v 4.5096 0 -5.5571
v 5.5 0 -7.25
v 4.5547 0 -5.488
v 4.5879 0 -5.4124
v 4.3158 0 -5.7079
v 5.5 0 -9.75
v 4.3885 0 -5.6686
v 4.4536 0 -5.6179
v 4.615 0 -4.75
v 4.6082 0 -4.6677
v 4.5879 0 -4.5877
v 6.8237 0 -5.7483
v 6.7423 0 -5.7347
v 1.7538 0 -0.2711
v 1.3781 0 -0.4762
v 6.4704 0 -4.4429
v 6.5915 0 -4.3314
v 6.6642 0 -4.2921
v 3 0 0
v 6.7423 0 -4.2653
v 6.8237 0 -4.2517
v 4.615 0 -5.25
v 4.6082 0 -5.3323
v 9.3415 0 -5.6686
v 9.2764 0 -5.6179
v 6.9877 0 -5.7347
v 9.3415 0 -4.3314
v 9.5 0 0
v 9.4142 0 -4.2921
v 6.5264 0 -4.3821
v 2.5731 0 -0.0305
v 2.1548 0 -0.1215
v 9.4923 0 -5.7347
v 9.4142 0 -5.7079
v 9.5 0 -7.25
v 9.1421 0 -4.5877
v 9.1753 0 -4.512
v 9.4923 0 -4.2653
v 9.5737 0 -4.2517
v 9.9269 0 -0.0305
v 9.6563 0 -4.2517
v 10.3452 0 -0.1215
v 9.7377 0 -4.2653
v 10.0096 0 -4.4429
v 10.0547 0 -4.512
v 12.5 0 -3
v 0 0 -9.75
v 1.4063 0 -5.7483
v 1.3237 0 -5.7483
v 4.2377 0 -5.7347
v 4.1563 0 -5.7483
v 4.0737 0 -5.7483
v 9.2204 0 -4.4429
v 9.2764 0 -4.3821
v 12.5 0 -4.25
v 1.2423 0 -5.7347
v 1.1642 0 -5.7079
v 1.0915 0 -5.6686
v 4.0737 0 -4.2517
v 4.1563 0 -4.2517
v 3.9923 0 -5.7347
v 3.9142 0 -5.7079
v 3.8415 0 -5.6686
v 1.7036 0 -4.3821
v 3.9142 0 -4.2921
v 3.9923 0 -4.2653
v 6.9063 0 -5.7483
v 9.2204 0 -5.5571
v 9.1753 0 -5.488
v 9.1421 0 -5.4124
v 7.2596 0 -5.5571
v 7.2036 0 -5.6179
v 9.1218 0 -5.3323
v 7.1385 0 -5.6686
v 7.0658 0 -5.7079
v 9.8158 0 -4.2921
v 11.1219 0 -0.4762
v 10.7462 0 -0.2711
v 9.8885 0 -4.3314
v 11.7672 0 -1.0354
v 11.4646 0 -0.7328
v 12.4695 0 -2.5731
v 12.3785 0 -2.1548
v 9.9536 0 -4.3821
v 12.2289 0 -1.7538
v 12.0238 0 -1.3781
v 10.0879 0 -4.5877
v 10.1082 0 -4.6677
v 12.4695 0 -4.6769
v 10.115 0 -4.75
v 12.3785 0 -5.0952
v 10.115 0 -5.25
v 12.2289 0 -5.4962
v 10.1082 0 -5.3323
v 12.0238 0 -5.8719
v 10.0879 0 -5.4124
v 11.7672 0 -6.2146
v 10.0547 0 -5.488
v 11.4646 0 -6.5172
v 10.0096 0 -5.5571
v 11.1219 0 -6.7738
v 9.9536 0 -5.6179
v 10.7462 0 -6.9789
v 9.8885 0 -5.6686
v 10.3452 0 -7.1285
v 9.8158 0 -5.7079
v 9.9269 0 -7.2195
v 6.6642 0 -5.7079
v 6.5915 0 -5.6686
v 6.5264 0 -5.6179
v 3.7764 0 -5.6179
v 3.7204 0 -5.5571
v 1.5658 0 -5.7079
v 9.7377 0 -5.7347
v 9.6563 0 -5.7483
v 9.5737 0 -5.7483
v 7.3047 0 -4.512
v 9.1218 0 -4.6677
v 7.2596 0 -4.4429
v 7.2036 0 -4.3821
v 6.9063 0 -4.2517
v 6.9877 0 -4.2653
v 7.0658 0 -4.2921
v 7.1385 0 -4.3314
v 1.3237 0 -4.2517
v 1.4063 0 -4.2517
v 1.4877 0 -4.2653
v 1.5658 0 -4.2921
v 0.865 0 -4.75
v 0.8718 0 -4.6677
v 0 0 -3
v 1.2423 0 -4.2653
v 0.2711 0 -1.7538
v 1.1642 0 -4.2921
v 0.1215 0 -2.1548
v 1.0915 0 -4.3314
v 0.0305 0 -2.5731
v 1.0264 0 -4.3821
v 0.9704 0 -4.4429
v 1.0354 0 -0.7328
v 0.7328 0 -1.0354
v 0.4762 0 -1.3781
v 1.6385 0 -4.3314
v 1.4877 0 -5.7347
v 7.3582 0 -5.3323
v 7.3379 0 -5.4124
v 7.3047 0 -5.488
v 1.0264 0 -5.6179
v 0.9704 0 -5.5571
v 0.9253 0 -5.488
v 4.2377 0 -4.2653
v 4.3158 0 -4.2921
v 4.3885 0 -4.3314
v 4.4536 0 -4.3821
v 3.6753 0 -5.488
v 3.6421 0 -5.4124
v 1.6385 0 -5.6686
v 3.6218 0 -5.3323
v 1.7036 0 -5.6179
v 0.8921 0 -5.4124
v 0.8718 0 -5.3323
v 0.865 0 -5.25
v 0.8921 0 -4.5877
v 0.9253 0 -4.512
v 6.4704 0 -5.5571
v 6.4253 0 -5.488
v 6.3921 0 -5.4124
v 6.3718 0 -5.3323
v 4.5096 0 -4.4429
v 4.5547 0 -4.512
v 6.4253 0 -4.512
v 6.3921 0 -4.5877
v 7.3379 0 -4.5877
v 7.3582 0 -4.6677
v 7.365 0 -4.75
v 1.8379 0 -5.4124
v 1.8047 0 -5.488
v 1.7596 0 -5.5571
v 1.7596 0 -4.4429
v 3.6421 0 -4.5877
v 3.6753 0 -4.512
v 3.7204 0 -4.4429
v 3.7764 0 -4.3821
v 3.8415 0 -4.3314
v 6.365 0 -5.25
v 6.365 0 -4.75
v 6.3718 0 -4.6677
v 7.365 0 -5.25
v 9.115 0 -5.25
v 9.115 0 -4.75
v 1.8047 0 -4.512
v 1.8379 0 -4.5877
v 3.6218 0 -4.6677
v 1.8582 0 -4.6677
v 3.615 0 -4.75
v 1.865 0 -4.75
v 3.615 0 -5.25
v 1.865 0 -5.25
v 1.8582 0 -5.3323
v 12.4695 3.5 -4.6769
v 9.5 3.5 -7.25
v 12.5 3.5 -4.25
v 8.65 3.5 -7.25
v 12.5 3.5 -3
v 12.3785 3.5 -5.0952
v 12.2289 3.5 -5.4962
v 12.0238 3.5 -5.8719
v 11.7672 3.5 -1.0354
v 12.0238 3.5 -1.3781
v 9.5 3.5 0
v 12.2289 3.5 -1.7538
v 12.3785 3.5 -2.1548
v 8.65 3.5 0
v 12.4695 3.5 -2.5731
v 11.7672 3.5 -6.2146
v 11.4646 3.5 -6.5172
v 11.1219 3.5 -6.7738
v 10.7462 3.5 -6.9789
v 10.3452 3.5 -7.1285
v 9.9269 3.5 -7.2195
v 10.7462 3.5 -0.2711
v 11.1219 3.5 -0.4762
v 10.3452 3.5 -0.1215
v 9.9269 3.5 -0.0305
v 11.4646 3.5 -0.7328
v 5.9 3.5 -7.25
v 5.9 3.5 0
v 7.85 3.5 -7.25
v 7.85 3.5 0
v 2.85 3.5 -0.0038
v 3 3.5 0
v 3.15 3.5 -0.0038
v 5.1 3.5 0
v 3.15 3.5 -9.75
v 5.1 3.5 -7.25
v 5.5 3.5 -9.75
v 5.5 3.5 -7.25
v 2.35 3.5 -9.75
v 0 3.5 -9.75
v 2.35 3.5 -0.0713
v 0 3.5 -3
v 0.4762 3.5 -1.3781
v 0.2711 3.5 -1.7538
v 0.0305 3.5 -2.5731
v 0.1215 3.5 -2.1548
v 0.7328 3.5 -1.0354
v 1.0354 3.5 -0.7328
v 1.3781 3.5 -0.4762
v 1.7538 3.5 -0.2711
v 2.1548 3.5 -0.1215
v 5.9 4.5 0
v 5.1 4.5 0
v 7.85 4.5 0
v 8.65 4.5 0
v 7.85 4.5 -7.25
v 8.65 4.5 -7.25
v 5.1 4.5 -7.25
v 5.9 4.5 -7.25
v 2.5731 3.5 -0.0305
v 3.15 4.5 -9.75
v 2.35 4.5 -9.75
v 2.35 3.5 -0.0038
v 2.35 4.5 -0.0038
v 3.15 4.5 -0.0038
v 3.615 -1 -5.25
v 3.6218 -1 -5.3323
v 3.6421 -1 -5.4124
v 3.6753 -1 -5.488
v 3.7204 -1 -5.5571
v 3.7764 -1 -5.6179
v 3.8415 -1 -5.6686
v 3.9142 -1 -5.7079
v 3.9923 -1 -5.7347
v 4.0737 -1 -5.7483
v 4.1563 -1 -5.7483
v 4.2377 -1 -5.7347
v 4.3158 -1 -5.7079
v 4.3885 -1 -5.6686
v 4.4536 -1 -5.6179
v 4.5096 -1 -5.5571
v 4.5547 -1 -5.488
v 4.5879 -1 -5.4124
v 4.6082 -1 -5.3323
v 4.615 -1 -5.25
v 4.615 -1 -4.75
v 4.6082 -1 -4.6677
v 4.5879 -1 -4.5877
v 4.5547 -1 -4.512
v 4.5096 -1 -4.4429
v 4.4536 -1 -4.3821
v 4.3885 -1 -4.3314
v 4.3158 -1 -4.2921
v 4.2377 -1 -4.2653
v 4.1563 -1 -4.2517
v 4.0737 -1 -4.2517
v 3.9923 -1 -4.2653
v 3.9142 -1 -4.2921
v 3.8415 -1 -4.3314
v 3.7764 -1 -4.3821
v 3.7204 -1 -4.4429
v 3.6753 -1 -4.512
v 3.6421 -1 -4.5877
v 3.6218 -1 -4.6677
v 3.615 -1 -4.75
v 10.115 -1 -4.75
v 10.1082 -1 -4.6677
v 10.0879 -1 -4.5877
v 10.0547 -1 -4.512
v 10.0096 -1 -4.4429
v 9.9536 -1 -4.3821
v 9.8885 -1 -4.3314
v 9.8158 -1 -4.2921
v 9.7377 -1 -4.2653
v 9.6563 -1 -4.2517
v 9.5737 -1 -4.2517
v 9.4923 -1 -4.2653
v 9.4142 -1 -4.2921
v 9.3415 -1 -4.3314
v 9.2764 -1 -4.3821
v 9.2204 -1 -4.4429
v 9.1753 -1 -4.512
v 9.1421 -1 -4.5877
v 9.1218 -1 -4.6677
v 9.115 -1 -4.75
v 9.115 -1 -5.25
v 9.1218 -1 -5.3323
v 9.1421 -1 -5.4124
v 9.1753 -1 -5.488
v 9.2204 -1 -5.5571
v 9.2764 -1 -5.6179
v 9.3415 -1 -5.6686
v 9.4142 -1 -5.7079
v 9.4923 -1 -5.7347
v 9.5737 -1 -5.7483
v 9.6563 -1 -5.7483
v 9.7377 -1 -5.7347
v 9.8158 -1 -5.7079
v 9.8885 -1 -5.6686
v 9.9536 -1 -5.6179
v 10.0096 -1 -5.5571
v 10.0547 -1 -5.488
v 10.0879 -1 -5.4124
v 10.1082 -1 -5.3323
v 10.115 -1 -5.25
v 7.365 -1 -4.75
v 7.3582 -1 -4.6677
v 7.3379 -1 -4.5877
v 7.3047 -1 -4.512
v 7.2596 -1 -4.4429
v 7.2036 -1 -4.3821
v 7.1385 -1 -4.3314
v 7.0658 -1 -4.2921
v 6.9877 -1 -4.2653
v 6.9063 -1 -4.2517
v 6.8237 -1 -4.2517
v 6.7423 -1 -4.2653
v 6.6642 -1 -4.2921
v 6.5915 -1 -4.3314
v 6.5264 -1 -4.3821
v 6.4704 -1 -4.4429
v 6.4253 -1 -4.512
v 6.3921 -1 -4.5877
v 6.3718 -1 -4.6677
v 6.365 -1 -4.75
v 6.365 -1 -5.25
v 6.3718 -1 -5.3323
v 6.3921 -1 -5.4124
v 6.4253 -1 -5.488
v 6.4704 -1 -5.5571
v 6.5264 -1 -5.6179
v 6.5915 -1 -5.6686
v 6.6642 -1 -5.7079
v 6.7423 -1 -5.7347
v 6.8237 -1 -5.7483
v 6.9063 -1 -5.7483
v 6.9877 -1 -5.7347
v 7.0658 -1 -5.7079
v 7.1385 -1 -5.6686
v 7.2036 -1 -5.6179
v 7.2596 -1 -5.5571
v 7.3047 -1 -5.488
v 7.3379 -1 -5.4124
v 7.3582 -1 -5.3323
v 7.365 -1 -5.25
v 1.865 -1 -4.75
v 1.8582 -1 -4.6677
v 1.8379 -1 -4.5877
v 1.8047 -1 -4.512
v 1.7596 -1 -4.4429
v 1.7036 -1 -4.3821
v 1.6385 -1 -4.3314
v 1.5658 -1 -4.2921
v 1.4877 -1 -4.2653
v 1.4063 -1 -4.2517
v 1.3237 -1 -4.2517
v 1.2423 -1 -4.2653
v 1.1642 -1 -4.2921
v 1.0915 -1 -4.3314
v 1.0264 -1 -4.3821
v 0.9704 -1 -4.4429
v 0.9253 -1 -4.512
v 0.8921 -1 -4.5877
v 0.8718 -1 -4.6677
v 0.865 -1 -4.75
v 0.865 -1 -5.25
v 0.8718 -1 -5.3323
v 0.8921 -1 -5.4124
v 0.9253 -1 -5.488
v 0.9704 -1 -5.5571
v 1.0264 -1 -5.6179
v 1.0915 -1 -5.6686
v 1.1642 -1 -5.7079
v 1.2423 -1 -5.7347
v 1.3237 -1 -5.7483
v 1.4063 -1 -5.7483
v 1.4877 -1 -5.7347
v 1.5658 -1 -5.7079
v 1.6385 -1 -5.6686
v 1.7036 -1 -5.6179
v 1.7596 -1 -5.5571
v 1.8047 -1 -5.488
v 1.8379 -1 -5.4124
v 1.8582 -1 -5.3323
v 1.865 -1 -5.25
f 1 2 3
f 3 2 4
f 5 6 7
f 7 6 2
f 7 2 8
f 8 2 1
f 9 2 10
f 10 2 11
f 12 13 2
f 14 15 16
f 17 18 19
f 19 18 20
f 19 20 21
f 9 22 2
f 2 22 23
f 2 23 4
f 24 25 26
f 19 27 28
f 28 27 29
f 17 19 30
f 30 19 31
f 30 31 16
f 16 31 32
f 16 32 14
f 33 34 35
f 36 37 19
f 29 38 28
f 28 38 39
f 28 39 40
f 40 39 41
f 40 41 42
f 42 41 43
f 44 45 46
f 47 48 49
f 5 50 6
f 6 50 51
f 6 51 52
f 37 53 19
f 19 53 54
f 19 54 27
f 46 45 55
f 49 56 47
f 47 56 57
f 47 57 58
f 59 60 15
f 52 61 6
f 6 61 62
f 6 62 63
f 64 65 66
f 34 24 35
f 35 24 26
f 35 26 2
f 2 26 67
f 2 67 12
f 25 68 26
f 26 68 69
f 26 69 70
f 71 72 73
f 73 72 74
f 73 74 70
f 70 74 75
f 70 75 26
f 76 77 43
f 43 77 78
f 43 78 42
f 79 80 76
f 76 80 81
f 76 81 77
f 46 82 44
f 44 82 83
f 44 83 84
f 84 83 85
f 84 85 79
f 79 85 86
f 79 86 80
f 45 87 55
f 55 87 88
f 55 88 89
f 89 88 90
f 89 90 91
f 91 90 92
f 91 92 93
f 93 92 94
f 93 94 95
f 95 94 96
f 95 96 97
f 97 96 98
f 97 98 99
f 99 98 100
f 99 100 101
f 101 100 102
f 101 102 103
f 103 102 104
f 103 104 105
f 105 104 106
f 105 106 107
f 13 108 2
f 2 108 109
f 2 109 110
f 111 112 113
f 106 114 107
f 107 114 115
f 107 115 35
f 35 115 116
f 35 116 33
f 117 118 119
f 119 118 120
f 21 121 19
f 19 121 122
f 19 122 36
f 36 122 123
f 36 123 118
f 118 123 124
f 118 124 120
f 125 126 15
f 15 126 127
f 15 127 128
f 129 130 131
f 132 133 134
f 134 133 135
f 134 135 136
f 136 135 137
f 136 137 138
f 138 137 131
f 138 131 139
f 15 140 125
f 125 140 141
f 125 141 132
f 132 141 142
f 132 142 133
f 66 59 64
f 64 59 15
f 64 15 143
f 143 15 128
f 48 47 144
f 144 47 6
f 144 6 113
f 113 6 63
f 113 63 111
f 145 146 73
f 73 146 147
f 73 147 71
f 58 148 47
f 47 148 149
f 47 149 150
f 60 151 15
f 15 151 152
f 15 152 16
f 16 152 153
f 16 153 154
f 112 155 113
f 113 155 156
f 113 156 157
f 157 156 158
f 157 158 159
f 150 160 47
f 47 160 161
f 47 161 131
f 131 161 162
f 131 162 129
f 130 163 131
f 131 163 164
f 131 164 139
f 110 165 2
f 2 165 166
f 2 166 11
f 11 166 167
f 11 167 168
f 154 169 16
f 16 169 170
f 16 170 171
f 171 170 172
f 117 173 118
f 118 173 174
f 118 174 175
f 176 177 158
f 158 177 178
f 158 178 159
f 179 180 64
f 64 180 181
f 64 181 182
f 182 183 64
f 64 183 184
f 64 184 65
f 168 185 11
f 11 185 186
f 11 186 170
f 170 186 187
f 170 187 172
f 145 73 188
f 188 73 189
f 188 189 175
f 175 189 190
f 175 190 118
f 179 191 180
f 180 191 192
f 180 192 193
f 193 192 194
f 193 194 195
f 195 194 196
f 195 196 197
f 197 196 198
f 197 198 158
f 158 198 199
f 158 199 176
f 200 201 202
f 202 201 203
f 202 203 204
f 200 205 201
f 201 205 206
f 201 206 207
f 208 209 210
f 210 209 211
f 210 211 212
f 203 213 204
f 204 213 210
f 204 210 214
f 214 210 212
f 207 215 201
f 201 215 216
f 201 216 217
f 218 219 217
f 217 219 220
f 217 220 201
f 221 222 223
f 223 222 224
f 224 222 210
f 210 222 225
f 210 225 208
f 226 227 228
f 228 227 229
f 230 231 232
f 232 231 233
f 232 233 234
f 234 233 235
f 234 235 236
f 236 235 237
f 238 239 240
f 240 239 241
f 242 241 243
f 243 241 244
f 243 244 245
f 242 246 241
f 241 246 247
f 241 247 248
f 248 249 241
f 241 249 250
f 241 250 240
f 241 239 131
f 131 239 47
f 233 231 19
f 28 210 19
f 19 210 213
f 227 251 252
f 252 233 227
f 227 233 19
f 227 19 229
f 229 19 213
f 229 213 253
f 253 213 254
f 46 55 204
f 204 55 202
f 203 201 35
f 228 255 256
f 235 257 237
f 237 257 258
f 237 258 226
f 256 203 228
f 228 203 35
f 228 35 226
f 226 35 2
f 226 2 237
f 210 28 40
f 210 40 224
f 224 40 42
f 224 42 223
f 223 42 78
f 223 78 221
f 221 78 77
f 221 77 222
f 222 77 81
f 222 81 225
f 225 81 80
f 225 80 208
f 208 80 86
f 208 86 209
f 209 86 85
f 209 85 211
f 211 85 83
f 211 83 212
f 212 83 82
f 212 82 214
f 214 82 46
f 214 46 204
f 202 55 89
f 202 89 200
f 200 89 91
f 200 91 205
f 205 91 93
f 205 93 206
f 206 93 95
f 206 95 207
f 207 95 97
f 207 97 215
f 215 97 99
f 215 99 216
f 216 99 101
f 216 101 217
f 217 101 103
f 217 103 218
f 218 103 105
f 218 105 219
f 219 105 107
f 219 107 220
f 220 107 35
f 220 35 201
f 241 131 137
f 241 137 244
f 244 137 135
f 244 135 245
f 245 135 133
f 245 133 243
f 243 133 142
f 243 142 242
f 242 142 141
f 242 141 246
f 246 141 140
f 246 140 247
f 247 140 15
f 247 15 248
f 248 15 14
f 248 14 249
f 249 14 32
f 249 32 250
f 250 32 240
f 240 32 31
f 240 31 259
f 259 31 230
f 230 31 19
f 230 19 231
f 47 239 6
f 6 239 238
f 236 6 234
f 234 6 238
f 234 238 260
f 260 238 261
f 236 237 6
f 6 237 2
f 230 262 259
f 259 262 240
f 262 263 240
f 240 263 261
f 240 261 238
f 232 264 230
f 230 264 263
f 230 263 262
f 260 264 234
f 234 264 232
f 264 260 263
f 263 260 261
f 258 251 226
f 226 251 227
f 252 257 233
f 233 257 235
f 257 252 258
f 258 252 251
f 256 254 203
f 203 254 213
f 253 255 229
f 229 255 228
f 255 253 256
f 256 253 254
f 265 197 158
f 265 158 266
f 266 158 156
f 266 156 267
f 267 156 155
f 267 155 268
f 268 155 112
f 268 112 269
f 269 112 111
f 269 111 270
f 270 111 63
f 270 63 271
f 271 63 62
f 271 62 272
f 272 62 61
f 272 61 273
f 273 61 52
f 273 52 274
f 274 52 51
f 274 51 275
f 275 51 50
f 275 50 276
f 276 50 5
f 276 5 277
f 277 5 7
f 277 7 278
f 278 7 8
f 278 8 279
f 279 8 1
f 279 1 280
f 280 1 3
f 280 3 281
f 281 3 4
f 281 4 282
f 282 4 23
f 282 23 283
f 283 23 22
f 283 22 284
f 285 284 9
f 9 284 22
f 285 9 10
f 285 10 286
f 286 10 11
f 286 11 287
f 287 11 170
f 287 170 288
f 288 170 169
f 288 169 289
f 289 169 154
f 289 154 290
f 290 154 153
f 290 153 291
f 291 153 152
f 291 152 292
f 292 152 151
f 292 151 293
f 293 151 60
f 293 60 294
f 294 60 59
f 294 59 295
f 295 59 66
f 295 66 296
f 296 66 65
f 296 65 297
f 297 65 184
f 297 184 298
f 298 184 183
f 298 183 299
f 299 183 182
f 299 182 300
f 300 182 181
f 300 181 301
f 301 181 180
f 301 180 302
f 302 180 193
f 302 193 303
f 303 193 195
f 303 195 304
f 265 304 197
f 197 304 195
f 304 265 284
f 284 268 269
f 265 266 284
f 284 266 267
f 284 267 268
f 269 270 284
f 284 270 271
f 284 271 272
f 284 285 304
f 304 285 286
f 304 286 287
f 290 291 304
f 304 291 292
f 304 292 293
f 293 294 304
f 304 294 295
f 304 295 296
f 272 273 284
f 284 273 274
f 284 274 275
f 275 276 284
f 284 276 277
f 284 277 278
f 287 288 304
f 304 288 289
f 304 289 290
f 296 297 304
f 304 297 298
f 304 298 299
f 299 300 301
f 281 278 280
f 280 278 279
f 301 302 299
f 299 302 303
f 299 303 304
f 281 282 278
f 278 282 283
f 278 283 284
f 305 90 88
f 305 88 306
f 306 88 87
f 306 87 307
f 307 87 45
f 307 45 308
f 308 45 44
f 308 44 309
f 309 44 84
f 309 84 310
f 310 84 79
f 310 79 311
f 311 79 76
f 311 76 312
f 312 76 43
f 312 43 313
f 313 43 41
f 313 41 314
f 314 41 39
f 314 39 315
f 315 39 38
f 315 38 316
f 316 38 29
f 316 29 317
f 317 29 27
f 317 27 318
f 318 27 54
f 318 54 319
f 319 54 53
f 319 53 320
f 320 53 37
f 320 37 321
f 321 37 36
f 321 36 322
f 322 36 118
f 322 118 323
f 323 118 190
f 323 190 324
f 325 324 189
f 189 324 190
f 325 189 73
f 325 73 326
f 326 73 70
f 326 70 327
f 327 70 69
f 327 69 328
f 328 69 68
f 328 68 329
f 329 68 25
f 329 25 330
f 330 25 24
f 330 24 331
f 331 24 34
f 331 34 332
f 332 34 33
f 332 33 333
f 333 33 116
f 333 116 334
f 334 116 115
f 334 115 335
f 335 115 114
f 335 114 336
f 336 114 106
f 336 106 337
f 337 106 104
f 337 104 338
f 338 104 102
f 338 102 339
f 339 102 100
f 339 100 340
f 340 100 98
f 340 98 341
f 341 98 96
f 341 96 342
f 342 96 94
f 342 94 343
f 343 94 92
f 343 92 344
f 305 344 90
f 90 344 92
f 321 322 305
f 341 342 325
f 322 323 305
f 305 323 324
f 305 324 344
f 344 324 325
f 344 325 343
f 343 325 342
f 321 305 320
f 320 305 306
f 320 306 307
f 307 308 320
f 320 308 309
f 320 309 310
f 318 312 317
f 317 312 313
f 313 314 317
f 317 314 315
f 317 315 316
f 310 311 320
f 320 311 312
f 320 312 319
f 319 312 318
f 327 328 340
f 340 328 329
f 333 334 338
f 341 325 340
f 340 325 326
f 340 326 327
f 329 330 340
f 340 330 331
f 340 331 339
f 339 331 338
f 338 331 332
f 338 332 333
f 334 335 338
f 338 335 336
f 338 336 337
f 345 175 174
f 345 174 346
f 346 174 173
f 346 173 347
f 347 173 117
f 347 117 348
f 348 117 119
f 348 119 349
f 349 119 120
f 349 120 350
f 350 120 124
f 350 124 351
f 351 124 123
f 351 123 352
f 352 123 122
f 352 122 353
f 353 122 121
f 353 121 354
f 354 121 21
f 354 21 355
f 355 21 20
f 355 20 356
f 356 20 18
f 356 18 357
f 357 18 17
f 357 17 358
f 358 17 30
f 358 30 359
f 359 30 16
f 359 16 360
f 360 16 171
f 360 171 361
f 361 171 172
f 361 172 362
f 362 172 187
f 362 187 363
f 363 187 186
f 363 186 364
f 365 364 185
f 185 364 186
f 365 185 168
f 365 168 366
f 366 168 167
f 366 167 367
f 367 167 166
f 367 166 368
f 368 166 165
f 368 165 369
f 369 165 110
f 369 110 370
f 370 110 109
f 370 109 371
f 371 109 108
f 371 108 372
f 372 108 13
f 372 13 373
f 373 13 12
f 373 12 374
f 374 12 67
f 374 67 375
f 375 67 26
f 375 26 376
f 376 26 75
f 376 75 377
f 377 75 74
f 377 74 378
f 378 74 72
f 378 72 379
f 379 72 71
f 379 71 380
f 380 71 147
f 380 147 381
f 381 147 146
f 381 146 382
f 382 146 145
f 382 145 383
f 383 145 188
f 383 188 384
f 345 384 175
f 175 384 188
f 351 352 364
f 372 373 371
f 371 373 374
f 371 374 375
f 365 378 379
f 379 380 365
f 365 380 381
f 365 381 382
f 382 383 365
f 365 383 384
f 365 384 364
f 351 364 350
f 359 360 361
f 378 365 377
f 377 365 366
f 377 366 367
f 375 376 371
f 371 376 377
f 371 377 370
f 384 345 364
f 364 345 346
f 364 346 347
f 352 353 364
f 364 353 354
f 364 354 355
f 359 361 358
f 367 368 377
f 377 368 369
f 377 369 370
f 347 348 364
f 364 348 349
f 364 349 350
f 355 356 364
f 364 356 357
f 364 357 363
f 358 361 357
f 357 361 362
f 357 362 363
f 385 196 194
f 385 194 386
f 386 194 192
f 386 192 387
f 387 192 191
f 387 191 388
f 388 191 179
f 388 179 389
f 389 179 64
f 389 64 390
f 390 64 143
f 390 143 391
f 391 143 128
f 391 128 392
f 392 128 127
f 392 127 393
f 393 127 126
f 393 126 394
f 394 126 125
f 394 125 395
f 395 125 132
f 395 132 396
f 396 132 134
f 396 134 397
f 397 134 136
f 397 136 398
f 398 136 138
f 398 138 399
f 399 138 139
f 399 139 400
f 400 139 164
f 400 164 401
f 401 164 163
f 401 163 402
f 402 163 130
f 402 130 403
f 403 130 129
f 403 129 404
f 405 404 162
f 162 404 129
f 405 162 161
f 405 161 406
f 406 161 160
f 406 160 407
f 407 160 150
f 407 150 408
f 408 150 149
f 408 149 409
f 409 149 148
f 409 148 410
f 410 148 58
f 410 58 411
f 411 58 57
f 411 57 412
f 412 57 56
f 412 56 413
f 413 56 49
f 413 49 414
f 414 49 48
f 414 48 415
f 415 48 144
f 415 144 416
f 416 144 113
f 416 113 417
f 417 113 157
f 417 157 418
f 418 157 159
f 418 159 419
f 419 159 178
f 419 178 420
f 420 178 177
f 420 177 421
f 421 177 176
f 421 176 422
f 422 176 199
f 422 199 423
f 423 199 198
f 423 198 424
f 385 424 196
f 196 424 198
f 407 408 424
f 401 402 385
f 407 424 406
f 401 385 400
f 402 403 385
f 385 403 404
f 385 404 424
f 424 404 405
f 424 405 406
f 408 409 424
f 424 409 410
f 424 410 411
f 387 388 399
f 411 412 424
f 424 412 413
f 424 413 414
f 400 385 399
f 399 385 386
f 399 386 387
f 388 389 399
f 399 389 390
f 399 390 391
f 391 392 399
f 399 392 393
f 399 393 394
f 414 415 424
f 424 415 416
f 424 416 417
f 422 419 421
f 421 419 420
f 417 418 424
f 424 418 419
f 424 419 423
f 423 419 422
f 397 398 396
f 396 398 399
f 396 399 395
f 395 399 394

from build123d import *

# Parameters (mm, degrees)
SKETCH_1_W      = 12.5
SKETCH_1_H      = 7.25
EXTRUDE_1_DEPTH = 3.5
FILLET_1_R      = 3
SKETCH_2_W      = 5.5
SKETCH_2_H      = 2.5
EXTRUDE_2_DEPTH = 3.5
SKETCH_3_W      = 0.8
SKETCH_3_H      = 9.746247653
SKETCH_3_H_2    = 7.25
EXTRUDE_3_DEPTH = 1
EXTRUDE_4_DEPTH = 1


with BuildPart() as part:
    # 草图1 → 凸台-拉伸1 (new body)
    with BuildSketch(Plane(origin=(0, 0, 0), x_dir=(1, 0, 0), z_dir=(0, 1, 0))):
        with Locations((6.25, 3.625)):
            Rectangle(SKETCH_1_W, SKETCH_1_H)
    extrude(amount=EXTRUDE_1_DEPTH)

    # 圆角1
    fillet_1_edges = [part.edges().sort_by_distance(p)[0] for p in [
        (12.5, 1.75, -7.25),
        (12.5, 1.75, 0),
        (0, 1.75, 0),
    ]]
    fillet(fillet_1_edges, radius=FILLET_1_R)

    # 草图2 → 凸台-拉伸2 (add)
    with BuildSketch(Plane(origin=(0, 3.5, 0), x_dir=(1, 0, 0), z_dir=(0, 1, 0))):
        with Locations((2.75, 8.5)):
            Rectangle(SKETCH_2_W, SKETCH_2_H)
    extrude(amount=-EXTRUDE_2_DEPTH)

    # 草图3 → 凸台-拉伸3 (add)
    with BuildSketch(Plane(origin=(0, 3.5, 0), x_dir=(1, 0, 0), z_dir=(0, 1, 0))):
        with Locations((2.75, 4.876876174)):
            Rectangle(SKETCH_3_W, SKETCH_3_H)
        with Locations((5.5, 3.625)):
            Rectangle(SKETCH_3_W, SKETCH_3_H_2)
        with Locations((8.25, 3.625)):
            Rectangle(SKETCH_3_W, SKETCH_3_H_2)
    extrude(amount=EXTRUDE_3_DEPTH)

    # 草图6 → 凸台-拉伸4 (add)
    with BuildSketch(Plane.XZ):
        with BuildLine():
            Line((6.365, -4.75), (6.365, -5.25))
            ThreePointArc((6.365, -5.25), (6.865, -5.75), (7.365, -5.25))
            Line((7.365, -5.25), (7.365, -4.75))
            ThreePointArc((7.365, -4.75), (6.865, -4.25), (6.365, -4.75))
        make_face()
        with BuildLine():
            Line((9.115, -4.75), (9.115, -5.25))
            ThreePointArc((9.115, -5.25), (9.615, -5.75), (10.115, -5.25))
            Line((10.115, -5.25), (10.115, -4.75))
            ThreePointArc((10.115, -4.75), (9.615, -4.25), (9.115, -4.75))
        make_face()
        with BuildLine():
            Line((4.615, -5.25), (4.615, -4.75))
            ThreePointArc((4.615, -4.75), (4.115, -4.25), (3.615, -4.75))
            Line((3.615, -4.75), (3.615, -5.25))
            ThreePointArc((3.615, -5.25), (4.115, -5.75), (4.615, -5.25))
        make_face()
        with BuildLine():
            Line((0.865, -4.75), (0.865, -5.25))
            ThreePointArc((0.865, -5.25), (1.365, -5.75), (1.865, -5.25))
            Line((1.865, -5.25), (1.865, -4.75))
            ThreePointArc((1.865, -4.75), (1.365, -4.25), (0.865, -4.75))
        make_face()
    extrude(amount=EXTRUDE_4_DEPTH)


solid = part.part
